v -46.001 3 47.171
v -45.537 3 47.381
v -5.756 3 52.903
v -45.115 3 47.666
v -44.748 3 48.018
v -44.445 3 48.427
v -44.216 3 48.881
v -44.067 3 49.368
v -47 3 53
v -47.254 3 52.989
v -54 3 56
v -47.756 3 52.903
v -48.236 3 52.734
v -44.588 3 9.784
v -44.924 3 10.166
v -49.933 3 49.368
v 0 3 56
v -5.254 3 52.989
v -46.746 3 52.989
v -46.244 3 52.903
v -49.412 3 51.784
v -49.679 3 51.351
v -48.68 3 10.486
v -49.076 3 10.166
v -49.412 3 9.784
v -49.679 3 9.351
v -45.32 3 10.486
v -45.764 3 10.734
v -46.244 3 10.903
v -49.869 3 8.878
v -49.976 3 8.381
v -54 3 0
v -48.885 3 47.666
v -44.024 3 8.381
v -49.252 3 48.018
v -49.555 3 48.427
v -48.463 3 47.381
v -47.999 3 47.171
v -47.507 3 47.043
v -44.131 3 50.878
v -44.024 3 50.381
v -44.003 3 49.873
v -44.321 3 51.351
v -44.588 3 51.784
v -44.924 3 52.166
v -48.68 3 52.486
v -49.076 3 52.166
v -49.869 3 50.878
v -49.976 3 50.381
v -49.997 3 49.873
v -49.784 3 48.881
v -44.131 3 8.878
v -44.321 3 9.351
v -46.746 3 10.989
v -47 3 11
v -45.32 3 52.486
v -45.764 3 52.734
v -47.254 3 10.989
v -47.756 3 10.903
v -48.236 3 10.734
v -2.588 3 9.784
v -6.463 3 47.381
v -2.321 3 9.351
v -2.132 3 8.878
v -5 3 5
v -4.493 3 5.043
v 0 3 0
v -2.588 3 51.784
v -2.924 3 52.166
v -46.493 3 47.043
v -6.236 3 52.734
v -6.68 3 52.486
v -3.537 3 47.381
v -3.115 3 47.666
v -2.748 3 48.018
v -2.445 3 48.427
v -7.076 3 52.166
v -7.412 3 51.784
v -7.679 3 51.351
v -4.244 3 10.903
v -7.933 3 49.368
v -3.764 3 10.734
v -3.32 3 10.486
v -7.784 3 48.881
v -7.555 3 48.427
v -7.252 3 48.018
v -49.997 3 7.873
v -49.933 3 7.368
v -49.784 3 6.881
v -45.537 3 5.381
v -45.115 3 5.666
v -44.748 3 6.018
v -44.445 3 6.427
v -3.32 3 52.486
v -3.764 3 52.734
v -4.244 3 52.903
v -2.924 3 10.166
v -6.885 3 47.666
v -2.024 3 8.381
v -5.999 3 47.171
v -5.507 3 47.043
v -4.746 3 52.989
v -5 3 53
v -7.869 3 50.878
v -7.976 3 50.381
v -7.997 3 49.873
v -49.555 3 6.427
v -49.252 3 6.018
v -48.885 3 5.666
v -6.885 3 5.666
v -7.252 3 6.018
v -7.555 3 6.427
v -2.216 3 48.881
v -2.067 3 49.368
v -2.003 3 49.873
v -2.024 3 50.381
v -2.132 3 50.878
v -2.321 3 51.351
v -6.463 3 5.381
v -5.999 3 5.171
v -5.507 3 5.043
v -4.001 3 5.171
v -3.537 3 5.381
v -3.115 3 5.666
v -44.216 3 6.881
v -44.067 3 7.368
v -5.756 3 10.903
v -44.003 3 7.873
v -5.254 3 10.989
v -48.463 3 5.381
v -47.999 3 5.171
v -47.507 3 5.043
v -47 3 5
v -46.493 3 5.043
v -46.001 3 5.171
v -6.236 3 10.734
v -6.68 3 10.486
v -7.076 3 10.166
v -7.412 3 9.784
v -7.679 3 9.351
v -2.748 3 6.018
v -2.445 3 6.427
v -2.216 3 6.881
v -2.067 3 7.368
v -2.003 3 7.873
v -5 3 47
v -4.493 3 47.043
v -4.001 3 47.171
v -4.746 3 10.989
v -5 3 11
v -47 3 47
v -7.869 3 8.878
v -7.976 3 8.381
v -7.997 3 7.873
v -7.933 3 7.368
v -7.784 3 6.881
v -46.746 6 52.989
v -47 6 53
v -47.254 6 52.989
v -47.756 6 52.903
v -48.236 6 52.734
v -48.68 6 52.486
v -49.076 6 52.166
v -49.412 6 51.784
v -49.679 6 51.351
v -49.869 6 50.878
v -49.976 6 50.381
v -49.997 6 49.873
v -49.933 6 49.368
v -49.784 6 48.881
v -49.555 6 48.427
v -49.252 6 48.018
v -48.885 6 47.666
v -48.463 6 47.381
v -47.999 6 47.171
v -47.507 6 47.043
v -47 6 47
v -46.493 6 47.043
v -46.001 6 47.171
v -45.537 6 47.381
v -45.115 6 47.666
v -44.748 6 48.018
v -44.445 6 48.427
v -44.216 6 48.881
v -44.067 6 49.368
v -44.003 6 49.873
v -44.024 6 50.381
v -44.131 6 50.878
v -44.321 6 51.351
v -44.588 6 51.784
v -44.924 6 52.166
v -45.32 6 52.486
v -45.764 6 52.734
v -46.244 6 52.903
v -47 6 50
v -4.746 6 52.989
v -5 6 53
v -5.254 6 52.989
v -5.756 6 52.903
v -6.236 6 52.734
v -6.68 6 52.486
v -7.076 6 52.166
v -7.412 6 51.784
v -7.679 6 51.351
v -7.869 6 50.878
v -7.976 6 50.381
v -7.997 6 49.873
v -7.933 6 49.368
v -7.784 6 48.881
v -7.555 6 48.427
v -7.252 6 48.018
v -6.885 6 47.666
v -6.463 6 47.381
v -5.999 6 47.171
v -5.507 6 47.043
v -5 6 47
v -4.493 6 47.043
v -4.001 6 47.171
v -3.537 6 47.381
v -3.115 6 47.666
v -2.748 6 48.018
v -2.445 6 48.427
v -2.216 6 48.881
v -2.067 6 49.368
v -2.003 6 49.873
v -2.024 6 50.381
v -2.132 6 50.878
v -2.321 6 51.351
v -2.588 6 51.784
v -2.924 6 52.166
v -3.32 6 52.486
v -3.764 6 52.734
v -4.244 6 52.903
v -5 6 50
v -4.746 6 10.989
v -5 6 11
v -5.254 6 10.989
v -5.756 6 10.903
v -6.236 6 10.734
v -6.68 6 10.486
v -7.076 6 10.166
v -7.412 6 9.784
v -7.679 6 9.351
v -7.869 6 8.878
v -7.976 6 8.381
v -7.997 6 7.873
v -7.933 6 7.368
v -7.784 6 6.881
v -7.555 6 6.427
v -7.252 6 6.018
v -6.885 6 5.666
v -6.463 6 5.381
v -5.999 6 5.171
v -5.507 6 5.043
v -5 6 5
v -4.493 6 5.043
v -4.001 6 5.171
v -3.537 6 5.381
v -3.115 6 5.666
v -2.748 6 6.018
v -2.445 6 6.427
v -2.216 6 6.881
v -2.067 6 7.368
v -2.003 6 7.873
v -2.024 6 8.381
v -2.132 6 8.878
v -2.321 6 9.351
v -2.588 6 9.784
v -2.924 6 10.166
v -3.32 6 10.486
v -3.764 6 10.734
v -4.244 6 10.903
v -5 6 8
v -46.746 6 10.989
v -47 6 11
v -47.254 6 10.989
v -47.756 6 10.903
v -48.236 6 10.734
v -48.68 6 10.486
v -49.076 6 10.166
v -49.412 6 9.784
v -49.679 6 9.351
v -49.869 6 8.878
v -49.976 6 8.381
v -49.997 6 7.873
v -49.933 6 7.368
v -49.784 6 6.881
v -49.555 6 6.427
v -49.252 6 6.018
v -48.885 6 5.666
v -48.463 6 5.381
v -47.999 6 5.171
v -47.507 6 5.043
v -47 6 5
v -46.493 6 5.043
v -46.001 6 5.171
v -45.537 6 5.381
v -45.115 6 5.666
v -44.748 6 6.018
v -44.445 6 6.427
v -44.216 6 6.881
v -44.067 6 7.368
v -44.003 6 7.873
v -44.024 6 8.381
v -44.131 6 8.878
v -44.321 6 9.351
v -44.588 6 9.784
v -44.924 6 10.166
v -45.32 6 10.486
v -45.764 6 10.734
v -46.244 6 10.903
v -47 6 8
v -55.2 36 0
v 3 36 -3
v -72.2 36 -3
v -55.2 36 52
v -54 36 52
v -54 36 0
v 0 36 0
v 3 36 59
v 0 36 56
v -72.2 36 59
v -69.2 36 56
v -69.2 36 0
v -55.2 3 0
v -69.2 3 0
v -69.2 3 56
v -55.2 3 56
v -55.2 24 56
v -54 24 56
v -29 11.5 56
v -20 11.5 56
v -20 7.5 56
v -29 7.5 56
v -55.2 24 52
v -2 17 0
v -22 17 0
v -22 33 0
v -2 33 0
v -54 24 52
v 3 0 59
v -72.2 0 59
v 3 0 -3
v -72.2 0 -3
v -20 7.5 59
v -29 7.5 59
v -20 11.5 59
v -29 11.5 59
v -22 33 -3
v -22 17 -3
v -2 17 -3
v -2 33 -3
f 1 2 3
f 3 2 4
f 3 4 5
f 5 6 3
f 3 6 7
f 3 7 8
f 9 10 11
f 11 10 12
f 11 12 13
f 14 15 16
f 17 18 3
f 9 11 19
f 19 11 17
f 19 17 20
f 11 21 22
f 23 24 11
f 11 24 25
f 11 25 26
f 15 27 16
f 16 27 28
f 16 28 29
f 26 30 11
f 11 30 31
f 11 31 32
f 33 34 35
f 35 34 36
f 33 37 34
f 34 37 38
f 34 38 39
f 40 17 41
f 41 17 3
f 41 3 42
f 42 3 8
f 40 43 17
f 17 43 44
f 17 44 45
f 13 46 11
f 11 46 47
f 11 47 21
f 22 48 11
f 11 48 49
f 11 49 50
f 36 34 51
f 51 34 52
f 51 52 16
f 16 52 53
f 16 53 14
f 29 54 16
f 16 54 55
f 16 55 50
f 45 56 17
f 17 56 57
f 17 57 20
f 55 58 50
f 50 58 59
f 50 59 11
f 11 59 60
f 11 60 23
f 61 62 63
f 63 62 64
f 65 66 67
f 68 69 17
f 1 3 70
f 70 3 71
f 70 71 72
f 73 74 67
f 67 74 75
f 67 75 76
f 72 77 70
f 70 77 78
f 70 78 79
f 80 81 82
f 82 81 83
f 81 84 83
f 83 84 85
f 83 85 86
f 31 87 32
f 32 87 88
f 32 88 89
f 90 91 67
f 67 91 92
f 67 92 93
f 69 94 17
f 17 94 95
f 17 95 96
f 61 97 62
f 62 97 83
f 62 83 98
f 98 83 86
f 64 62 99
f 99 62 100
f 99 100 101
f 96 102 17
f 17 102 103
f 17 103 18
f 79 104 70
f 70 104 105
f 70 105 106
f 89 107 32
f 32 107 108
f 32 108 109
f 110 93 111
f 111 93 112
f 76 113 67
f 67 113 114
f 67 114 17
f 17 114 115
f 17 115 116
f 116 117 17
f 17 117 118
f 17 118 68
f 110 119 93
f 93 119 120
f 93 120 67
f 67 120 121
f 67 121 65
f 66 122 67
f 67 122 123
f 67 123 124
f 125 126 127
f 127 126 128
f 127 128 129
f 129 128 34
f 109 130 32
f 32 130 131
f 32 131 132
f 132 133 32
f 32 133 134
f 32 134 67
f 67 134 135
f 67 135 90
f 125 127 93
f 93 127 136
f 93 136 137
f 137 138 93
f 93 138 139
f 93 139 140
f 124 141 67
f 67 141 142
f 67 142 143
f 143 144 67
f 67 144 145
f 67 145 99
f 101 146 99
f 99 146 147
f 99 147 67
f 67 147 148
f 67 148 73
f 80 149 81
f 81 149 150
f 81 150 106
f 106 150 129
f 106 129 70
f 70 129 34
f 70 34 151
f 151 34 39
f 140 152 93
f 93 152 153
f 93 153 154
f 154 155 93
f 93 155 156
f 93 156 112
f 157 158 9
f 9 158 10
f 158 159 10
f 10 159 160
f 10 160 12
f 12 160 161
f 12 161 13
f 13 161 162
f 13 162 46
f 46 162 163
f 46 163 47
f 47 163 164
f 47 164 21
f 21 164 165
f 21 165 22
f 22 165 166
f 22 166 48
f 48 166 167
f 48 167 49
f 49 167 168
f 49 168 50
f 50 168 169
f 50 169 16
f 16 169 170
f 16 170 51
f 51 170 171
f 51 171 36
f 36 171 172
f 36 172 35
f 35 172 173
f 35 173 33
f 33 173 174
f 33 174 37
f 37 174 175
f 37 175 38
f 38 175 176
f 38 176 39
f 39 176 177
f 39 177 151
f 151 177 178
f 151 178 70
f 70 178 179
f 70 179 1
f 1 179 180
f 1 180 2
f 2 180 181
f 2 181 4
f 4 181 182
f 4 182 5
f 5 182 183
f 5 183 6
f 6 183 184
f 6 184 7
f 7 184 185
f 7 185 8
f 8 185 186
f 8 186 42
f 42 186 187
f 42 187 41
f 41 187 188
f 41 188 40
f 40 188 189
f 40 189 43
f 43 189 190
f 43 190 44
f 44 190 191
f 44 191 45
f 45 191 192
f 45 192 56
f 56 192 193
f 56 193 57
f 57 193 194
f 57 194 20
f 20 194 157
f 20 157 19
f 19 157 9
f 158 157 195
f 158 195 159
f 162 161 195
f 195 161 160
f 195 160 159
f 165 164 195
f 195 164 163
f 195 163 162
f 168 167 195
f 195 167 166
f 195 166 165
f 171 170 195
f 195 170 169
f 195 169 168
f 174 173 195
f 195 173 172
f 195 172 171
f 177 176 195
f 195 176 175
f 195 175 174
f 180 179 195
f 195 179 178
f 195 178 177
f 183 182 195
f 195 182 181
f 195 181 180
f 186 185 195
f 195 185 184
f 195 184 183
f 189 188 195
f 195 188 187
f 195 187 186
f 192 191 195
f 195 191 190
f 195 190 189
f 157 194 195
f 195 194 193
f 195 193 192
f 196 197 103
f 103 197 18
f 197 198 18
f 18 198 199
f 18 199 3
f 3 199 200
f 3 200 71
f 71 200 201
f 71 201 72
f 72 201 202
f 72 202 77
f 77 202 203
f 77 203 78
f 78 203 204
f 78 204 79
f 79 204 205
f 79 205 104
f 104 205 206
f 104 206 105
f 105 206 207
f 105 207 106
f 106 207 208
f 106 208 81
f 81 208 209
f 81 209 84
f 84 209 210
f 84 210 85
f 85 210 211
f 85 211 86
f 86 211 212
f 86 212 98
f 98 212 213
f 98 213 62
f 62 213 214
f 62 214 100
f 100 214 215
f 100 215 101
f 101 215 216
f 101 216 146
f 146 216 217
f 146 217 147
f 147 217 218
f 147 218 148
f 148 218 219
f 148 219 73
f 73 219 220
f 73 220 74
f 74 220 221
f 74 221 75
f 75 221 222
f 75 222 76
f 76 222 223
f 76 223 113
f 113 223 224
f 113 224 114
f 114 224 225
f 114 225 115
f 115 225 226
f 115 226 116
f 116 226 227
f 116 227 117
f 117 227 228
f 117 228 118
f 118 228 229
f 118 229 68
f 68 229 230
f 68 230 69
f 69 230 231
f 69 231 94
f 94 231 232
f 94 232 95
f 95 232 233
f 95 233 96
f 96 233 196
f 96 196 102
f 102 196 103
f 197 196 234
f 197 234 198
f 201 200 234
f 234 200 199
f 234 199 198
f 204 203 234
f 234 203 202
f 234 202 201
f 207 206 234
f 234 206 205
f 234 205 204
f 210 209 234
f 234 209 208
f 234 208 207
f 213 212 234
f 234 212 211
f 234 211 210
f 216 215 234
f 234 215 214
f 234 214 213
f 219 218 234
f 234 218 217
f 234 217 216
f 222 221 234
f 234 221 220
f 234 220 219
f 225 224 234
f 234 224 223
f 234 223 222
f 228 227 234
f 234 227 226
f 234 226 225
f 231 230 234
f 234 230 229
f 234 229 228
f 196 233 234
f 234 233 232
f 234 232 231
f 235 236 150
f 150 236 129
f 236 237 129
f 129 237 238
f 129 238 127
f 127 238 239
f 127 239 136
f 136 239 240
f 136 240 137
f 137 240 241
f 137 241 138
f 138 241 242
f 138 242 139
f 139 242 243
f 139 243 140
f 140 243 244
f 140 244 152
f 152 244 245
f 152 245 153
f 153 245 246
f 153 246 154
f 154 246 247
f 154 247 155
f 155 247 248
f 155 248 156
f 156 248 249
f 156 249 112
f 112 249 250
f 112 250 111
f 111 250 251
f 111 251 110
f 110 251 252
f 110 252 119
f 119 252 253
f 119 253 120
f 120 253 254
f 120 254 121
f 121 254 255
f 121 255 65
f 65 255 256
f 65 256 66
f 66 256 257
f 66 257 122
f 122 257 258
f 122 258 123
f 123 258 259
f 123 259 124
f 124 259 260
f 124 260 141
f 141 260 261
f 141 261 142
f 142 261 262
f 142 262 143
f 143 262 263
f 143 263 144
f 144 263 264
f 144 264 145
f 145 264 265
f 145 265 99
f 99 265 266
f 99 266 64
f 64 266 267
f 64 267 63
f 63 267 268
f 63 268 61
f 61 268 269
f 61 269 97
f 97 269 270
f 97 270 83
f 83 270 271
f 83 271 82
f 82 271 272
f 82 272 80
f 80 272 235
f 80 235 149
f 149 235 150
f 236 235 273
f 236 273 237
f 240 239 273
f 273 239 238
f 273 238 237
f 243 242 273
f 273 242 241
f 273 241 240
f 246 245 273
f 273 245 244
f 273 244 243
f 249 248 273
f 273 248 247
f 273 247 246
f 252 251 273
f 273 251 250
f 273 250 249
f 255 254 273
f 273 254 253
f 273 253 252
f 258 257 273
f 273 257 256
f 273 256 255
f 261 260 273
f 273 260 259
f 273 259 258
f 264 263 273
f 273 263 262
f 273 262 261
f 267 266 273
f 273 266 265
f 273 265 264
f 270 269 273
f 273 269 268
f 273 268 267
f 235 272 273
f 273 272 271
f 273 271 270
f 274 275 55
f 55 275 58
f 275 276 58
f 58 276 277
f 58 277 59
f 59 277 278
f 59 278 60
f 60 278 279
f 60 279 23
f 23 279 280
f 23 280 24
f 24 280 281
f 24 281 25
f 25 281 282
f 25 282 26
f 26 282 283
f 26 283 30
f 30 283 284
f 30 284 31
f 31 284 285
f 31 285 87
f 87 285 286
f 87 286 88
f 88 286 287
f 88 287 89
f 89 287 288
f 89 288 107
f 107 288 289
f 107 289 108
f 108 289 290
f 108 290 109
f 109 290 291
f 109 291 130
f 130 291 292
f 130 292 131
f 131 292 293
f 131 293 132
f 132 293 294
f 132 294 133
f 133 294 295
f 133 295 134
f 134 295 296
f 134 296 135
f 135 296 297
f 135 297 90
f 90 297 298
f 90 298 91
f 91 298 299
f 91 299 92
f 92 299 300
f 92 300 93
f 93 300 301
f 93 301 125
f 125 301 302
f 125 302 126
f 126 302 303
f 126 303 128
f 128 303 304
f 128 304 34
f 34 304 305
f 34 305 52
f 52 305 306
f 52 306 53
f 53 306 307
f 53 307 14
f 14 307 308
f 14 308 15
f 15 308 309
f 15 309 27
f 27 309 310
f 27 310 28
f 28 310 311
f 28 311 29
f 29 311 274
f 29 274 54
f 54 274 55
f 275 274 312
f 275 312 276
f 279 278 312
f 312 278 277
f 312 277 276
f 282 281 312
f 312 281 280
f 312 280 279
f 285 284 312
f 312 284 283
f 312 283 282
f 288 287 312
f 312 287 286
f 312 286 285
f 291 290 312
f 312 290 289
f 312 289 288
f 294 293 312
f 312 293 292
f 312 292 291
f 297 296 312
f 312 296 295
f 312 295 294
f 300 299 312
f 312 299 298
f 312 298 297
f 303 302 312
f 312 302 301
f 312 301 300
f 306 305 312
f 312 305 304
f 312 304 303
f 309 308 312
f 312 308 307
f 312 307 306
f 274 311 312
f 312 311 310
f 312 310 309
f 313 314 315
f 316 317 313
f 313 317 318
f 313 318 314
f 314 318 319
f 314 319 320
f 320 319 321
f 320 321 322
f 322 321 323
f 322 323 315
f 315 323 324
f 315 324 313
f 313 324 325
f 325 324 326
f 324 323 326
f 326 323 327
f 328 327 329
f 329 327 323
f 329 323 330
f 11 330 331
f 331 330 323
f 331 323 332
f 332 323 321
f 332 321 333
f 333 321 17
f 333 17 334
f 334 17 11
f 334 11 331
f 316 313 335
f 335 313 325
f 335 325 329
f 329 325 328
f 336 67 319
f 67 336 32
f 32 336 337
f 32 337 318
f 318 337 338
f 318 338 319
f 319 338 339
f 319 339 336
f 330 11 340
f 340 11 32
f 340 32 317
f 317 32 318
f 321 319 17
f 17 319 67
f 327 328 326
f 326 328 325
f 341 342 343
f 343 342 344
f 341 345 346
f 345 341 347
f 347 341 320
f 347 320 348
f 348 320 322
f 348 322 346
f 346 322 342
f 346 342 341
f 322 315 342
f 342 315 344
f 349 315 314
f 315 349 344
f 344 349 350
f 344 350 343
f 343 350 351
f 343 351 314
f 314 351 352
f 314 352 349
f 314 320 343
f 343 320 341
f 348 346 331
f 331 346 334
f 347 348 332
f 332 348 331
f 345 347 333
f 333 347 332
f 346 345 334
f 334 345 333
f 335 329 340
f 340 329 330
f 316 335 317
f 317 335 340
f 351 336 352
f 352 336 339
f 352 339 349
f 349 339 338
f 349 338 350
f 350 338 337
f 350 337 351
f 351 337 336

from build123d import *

# Parameters (mm, degrees)
SKETCH1_W           = 75.2
SKETCH1_H           = 62
SKETCH1_W_2         = 54
SKETCH1_H_2         = 56
SKETCH1_R           = 3
SKETCH1_W_3         = 1.2
SKETCH1_W_4         = 14
BOSS_EXTRUDE1_DEPTH = 3
BOSS_EXTRUDE2_START = 3
SKETCH1_3_R         = 3
BOSS_EXTRUDE2_DEPTH = 3
BOSS_EXTRUDE3_START = 3
SKETCH1_4_W         = 75.2
SKETCH1_4_H         = 62
SKETCH1_4_W_2       = 1.2
SKETCH1_4_H_2       = 56
BOSS_EXTRUDE3_DEPTH = 33
CUT_EXTRUDE1_REACH  = 103.749
SKETCH2_W           = 9
SKETCH2_H           = 4
CUT_EXTRUDE2_REACH  = 92.356
SKETCH3_W           = 4
SKETCH3_H           = 12
CUT_EXTRUDE3_REACH  = 103.749
SKETCH4_W           = 20
SKETCH4_H           = 16


with BuildPart() as part:
    # Sketch1 → Boss-Extrude1 (new body)
    with BuildSketch(Plane(origin=(0, 0, 0), x_dir=(1, 0, 0), z_dir=(0, 1, 0))):
        with Locations((-34.6, -28)):
            Rectangle(SKETCH1_W, SKETCH1_H)
        Polygon((-55.2, -56), (-54, -56), (0, -56), (0, 0), (-54, 0), (-55.2, 0), (-69.2, 0), (-69.2, -56), align=None, mode=Mode.SUBTRACT)
        with Locations((-27, -28)):
            Rectangle(SKETCH1_W_2, SKETCH1_H_2)
        with Locations((-47, -50)):
            Circle(SKETCH1_R, mode=Mode.SUBTRACT)
        with Locations((-5, -50)):
            Circle(SKETCH1_R, mode=Mode.SUBTRACT)
        with Locations((-5, -8)):
            Circle(SKETCH1_R, mode=Mode.SUBTRACT)
        with Locations((-47, -8)):
            Circle(SKETCH1_R, mode=Mode.SUBTRACT)
        with Locations((-47, -50)):
            Circle(SKETCH1_R)
        with Locations((-5, -50)):
            Circle(SKETCH1_R)
        with Locations((-5, -8)):
            Circle(SKETCH1_R)
        with Locations((-47, -8)):
            Circle(SKETCH1_R)
        with Locations((-54.6, -28)):
            Rectangle(SKETCH1_W_3, SKETCH1_H_2)
        with Locations((-62.2, -28)):
            Rectangle(SKETCH1_W_4, SKETCH1_H_2)
    extrude(amount=BOSS_EXTRUDE1_DEPTH)

    # Sketch1<3> → Boss-Extrude2 (add)
    with BuildSketch(Plane(origin=(0, 0, 0), x_dir=(1, 0, 0), z_dir=(0, 1, 0)).offset(BOSS_EXTRUDE2_START)):
        with Locations(Location((-47, -50, 0), (0, 0, 270))):
            Circle(SKETCH1_3_R)
        with Locations(Location((-5, -50, 0), (0, 0, 270))):
            Circle(SKETCH1_3_R)
        with Locations(Location((-5, -8, 0), (0, 0, 270))):
            Circle(SKETCH1_3_R)
        with Locations(Location((-47, -8, 0), (0, 0, 270))):
            Circle(SKETCH1_3_R)
    extrude(amount=BOSS_EXTRUDE2_DEPTH)

    # Sketch1<4> → Boss-Extrude3 (add)
    with BuildSketch(Plane(origin=(0, 0, 0), x_dir=(1, 0, 0), z_dir=(0, 1, 0)).offset(BOSS_EXTRUDE3_START)):
        with Locations((-34.6, -28)):
            Rectangle(SKETCH1_4_W, SKETCH1_4_H)
        Polygon((-55.2, -56), (-54, -56), (0, -56), (0, 0), (-54, 0), (-55.2, 0), (-69.2, 0), (-69.2, -56), align=None, mode=Mode.SUBTRACT)
        with Locations((-54.6, -28)):
            Rectangle(SKETCH1_4_W_2, SKETCH1_4_H_2)
    extrude(amount=BOSS_EXTRUDE3_DEPTH)

    # Sketch2 → Cut-Extrude1 (cut, up to next)
    with BuildSketch(Plane.XY.offset(59), mode=Mode.PRIVATE) as cut_extrude1_sk1:
        with Locations((-24.5, 9.5)):
            Rectangle(SKETCH2_W, SKETCH2_H)
    cut_extrude1_tool1 = extrude(cut_extrude1_sk1.sketch, amount=-CUT_EXTRUDE1_REACH, mode=Mode.PRIVATE) & part.part
    add(cut_extrude1_tool1.solids().sort_by_distance((-24.5, 9.5, 59))[0], mode=Mode.SUBTRACT)

    # Sketch3 → Cut-Extrude2 (cut, up to next)
    with BuildSketch(Plane.ZY.offset(55.2), mode=Mode.PRIVATE) as cut_extrude2_sk1:
        with Locations((54, 30)):
            Rectangle(SKETCH3_W, SKETCH3_H)
    cut_extrude2_tool1 = extrude(cut_extrude2_sk1.sketch, amount=-CUT_EXTRUDE2_REACH, mode=Mode.PRIVATE) & part.part
    add(cut_extrude2_tool1.solids().sort_by_distance((-55.2, 30, 54))[0], mode=Mode.SUBTRACT)

    # Sketch4 → Cut-Extrude3 (cut, up to next)
    with BuildSketch(Plane(origin=(0, 0, -3), x_dir=(-1, 0, 0), z_dir=(0, 0, -1)), mode=Mode.PRIVATE) as cut_extrude3_sk1:
        with Locations((12, 25)):
            Rectangle(SKETCH4_W, SKETCH4_H)
    cut_extrude3_tool1 = extrude(cut_extrude3_sk1.sketch, amount=-CUT_EXTRUDE3_REACH, mode=Mode.PRIVATE) & part.part
    add(cut_extrude3_tool1.solids().sort_by_distance((-12, 25, -3))[0], mode=Mode.SUBTRACT)


solid = part.part
